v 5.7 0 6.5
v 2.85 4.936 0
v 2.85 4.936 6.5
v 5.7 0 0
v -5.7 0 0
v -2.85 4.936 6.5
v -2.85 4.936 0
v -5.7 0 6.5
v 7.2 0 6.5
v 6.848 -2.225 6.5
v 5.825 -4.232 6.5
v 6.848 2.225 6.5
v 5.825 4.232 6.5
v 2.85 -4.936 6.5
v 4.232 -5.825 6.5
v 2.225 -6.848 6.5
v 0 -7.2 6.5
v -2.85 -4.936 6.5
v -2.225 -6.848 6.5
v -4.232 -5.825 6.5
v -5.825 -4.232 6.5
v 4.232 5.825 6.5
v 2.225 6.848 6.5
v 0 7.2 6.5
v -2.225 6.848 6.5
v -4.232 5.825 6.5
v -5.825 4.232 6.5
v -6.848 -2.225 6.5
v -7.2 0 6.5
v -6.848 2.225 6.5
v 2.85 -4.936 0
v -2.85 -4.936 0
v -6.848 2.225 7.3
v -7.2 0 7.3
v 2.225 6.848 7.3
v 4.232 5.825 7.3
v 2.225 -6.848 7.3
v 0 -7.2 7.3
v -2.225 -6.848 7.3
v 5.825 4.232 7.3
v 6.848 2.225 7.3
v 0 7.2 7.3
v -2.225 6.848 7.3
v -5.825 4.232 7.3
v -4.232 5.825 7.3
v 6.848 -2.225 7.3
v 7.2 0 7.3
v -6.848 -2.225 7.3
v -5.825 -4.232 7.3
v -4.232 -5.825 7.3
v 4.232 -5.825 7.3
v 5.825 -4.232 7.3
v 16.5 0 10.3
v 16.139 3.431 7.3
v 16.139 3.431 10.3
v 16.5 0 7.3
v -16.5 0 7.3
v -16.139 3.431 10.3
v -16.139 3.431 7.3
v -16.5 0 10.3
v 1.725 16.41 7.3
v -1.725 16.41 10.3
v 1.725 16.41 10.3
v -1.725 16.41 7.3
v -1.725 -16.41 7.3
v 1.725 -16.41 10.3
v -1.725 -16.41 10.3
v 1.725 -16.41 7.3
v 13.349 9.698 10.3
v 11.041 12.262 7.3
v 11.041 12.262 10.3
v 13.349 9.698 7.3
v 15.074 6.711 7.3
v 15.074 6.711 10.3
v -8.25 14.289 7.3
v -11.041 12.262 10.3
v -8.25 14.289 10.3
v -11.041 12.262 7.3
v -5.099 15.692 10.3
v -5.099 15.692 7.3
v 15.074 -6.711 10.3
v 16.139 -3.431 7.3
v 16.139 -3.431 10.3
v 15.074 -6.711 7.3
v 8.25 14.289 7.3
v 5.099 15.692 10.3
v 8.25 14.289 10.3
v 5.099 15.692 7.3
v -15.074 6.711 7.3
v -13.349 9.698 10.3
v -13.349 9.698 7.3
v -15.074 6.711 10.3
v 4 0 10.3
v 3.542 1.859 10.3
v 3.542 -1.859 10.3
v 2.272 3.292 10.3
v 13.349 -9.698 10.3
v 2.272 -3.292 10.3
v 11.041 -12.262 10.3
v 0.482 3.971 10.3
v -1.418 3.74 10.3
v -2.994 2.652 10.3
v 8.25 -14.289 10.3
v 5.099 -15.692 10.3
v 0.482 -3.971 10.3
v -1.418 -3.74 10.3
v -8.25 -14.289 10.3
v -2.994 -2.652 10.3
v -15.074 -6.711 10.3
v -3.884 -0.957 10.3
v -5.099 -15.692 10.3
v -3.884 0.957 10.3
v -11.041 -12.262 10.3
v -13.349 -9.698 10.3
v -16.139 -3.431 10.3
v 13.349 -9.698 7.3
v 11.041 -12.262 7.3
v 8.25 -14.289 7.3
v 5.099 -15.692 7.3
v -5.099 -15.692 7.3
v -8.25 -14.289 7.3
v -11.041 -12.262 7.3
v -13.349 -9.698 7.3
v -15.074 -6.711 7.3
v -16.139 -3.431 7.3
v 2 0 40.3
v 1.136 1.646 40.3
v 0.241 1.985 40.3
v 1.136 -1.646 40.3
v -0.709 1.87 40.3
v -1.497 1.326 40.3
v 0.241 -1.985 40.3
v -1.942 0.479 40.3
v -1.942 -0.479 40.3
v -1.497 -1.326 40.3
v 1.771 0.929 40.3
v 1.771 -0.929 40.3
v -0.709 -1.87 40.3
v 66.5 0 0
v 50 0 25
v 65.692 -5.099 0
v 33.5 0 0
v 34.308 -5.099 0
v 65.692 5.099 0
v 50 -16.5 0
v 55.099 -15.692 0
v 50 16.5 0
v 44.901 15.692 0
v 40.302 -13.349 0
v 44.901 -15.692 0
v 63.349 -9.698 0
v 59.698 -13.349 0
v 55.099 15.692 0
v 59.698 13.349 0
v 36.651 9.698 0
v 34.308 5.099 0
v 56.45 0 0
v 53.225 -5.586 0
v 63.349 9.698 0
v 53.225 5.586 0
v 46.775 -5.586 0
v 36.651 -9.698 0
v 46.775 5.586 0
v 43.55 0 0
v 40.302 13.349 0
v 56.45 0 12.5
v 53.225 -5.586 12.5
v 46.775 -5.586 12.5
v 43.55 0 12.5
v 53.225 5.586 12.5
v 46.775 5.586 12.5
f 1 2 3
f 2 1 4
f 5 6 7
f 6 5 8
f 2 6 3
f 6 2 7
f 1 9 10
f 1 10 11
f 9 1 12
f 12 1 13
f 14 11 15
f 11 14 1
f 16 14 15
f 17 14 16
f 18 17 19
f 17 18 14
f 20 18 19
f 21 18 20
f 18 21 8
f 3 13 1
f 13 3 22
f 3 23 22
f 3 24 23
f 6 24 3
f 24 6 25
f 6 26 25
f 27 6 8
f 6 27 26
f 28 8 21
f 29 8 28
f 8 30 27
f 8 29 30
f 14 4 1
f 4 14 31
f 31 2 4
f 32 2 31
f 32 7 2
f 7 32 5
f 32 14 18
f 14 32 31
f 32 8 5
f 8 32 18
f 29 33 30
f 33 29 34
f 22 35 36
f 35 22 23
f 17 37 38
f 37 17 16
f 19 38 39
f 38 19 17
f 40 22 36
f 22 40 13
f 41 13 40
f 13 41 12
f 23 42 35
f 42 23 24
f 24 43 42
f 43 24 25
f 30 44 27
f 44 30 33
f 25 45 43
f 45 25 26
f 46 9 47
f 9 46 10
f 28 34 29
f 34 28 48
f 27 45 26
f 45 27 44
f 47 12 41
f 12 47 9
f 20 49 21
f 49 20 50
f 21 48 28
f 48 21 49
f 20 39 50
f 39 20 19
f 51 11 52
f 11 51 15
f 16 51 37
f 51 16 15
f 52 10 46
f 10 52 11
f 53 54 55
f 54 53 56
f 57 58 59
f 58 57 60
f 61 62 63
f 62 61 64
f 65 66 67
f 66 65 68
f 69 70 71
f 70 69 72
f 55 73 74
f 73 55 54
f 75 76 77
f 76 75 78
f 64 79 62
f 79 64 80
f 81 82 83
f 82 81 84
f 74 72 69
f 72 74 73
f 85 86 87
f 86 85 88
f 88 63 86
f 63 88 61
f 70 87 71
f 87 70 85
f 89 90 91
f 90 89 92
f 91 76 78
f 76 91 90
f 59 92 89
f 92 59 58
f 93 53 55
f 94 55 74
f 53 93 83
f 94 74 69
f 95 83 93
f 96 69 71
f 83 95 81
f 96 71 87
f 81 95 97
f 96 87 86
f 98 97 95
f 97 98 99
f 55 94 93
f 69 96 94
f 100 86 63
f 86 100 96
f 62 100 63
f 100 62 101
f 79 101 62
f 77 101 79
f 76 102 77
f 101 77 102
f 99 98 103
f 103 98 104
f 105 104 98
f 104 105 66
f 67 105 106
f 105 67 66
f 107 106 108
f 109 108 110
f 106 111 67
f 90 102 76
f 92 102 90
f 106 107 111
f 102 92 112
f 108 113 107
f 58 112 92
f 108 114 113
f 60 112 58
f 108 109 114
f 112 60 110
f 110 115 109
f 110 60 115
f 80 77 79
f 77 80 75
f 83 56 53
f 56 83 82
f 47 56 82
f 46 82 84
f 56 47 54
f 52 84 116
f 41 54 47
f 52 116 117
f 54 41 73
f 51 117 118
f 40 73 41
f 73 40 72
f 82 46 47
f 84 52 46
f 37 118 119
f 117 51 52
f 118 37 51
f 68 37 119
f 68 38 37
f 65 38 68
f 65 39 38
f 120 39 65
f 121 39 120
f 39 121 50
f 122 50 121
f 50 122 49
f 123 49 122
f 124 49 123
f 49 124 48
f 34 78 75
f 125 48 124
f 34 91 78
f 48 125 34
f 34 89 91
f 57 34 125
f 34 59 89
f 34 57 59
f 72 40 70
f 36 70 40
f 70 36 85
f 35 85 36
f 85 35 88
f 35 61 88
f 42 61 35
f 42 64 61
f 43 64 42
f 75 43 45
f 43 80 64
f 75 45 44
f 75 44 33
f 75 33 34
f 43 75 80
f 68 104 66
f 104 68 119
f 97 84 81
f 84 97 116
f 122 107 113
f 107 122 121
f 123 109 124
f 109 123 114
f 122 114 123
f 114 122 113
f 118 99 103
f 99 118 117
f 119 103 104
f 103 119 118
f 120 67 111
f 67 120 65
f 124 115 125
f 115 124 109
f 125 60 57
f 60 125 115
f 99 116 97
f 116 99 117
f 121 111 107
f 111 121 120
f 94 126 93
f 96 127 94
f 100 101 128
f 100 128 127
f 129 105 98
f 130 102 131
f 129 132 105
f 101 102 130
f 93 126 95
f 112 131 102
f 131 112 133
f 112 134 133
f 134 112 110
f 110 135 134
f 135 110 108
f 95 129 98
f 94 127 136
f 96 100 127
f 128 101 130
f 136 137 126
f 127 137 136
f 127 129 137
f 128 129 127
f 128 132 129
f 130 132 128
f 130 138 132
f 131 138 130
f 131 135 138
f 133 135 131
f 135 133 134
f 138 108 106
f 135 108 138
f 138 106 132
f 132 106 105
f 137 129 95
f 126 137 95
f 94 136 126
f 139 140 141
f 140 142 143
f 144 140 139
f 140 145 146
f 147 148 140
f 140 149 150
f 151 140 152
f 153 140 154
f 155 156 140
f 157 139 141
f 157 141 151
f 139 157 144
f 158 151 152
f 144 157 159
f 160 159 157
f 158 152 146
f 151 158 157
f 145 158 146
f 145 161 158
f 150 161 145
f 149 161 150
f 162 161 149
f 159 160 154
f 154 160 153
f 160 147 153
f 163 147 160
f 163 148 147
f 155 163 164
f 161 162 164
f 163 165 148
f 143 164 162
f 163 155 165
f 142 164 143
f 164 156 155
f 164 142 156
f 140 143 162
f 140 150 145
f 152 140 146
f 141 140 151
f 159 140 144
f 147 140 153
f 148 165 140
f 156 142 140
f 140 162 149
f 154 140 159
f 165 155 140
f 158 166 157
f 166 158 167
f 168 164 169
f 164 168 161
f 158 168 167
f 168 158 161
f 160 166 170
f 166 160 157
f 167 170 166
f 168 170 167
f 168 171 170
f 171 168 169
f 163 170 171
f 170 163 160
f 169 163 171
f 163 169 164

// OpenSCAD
r_base=16.5; //base cone radius
h_base=25; //height base cone
r_nut=5.7; //nut inside cone
h_nut=5; //thickness nut
r_dish=16.5; //radius superior dish
h_dish=3; //thickness
r1_handle=4; //radius superior handle
r2_handle=2;
h_handle=30;

// inferior part
module cone(){
  difference() {
      cylinder(r1=0,r2=r_base, h=h_base, $fn=20,center=false);
      translate ([0,0,h_base/2]) cylinder(r=r_nut+0.75, h=h_base/2, $fn=6, center=false);
  }
}
// superior part
module sup_part() {
  translate([0, 0, 0]) rotate([0, 0, 0]) cylinder(r=r_nut, h=h_base/2-h_nut-1, $fn=6, center=false); //inferior nut
  translate([0, 0, h_base/2-h_nut-1]) cylinder(r=7.2, h=1, $fn=20, center=false); //CD hole
  translate([0, 0, h_base/2-h_nut-1+0.8]) cylinder(r=r_dish, h=h_dish, center=false); //middle ring
  translate([0, 0, h_base/2-h_nut-1+0.8+h_dish]) cylinder(r1=r1_handle, r2=r2_handle, h=h_handle, center=false); //superior handle
}

//translate([50, 0, h_base/2]) rotate ([180,0,0]) cone();
sup_part();

translate([50, 0, h_base]) rotate ([180,0,0]) cone();
